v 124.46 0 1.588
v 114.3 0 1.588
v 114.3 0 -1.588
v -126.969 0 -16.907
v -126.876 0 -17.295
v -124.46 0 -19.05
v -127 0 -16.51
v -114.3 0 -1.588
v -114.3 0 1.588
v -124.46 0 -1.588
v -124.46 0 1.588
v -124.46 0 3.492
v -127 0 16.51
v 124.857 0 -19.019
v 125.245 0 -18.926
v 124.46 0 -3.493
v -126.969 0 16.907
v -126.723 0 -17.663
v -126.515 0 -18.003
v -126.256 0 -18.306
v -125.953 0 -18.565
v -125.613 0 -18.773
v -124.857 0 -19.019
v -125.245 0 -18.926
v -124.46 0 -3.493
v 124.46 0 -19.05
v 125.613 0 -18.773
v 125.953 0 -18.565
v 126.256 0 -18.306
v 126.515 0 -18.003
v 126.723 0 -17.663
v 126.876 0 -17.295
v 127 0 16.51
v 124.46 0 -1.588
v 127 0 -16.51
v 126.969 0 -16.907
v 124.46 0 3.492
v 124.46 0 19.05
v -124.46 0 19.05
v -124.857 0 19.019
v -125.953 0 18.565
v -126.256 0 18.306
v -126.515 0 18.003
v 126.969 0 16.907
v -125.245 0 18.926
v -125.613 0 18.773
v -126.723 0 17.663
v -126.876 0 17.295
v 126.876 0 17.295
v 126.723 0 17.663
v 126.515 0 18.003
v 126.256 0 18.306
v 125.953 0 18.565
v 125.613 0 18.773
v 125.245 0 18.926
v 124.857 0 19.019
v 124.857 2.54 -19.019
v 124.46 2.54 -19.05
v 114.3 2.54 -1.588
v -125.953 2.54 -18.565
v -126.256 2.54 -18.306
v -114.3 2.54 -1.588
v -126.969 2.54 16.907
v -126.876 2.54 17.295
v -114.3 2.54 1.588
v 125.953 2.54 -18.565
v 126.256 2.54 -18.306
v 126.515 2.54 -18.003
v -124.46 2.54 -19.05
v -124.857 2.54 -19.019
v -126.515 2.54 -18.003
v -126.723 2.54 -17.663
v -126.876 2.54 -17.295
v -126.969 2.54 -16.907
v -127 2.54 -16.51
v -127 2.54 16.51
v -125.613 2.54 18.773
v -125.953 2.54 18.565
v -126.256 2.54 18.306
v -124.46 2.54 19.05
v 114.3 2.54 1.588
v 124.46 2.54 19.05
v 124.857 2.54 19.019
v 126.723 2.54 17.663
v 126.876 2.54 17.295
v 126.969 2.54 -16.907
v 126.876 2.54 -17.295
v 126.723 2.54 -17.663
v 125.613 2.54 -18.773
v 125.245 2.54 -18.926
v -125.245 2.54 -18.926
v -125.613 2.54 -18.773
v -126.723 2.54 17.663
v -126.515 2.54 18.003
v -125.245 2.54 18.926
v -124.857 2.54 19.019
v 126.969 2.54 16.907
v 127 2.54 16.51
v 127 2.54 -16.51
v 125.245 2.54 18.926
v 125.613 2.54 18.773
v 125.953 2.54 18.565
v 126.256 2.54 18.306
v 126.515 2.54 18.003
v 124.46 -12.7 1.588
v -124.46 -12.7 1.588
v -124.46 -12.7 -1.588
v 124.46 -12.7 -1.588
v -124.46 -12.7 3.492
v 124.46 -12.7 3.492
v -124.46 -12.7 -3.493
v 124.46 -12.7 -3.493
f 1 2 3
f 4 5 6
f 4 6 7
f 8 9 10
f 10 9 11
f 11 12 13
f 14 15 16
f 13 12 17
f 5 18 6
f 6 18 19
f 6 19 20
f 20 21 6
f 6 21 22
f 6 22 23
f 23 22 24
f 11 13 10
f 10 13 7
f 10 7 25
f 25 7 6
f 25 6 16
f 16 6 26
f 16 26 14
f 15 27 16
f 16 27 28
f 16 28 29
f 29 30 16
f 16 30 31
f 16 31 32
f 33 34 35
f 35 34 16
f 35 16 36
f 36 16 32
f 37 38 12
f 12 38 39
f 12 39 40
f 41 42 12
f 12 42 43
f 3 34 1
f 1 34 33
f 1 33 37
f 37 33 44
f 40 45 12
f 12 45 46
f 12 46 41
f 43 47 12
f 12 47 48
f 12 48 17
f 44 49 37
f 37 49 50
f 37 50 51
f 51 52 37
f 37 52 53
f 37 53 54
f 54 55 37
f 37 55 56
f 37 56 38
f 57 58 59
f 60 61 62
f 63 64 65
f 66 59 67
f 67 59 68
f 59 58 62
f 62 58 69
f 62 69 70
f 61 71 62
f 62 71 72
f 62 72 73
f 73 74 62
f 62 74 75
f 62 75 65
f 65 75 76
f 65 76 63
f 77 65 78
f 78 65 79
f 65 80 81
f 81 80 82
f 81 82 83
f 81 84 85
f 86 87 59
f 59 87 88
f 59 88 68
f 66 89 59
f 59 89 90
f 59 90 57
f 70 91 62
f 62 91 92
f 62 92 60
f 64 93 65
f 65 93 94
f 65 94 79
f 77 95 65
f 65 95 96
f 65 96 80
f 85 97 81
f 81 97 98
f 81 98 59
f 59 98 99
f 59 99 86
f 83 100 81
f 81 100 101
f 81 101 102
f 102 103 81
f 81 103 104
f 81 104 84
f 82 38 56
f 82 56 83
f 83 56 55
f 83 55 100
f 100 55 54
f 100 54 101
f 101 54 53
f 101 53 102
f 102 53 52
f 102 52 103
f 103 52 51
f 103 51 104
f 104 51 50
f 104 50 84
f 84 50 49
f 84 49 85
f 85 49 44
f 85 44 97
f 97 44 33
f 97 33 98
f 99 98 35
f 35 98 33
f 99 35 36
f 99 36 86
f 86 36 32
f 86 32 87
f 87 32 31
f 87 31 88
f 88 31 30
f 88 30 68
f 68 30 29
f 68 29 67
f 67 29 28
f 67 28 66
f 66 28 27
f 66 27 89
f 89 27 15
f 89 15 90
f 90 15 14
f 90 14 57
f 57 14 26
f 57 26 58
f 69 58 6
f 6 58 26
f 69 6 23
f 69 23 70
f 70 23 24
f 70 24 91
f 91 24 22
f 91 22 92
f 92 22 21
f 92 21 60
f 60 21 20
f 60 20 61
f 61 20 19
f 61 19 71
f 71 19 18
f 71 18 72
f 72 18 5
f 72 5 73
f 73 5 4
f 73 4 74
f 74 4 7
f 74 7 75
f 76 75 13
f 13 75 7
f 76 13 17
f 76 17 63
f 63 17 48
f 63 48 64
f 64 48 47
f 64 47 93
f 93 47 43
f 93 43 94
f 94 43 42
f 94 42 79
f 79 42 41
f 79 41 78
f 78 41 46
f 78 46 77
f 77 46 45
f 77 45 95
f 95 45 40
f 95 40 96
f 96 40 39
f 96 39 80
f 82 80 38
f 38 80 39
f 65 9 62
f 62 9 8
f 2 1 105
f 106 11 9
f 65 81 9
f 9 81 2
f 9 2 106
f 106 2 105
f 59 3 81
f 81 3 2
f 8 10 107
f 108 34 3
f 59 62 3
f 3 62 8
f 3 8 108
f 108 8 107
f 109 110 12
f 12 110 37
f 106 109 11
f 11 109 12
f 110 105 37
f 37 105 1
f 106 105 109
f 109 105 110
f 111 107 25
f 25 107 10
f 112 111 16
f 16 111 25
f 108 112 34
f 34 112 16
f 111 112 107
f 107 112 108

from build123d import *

# Parameters (mm, degrees)
BOSS_EXTRUDE1_DEPTH = 2.54
CUT_EXTRUDE1_START  = 2.54
SKETCH5_W           = 228.6
SKETCH5_H           = 3.175
CUT_EXTRUDE1_DEPTH  = 2.54
SKETCH6_W           = 248.92
SKETCH6_H           = 1.905
BOSS_EXTRUDE3_DEPTH = 12.7


with BuildPart() as part:
    # Sketch3 → Boss-Extrude1 (new body)
    with BuildSketch(Plane(origin=(0, 0, 0), x_dir=(1, 0, 0), z_dir=(0, 1, 0))):
        with BuildLine():
            Line((-124.46, 19.05), (124.46, 19.05))
            ThreePointArc((124.46, 19.05), (126.256051224, 18.306051224), (127, 16.51))
            Line((127, 16.51), (127, -16.51))
            ThreePointArc((127, -16.51), (126.256051224, -18.306051224), (124.46, -19.05))
            Line((124.46, -19.05), (-124.46, -19.05))
            ThreePointArc((-124.46, -19.05), (-126.256051224, -18.306051224), (-127, -16.51))
            Line((-127, -16.51), (-127, 16.51))
            ThreePointArc((-127, 16.51), (-126.256051224, 18.306051224), (-124.46, 19.05))
        make_face()
    extrude(amount=BOSS_EXTRUDE1_DEPTH)

    # Sketch5 → Cut-Extrude1 (cut)
    with BuildSketch(Plane(origin=(0, 0, 0), x_dir=(1, 0, 0), z_dir=(0, 1, 0)).offset(CUT_EXTRUDE1_START)):
        Rectangle(SKETCH5_W, SKETCH5_H)
    extrude(amount=-CUT_EXTRUDE1_DEPTH, mode=Mode.SUBTRACT)

    # Sketch6 → Boss-Extrude3 (add)
    with BuildSketch(Plane.XZ):
        with Locations((0, -2.54)):
            Rectangle(SKETCH6_W, SKETCH6_H)
        with Locations((0, 2.54)):
            Rectangle(SKETCH6_W, SKETCH6_H)
    extrude(amount=BOSS_EXTRUDE3_DEPTH)


solid = part.part
